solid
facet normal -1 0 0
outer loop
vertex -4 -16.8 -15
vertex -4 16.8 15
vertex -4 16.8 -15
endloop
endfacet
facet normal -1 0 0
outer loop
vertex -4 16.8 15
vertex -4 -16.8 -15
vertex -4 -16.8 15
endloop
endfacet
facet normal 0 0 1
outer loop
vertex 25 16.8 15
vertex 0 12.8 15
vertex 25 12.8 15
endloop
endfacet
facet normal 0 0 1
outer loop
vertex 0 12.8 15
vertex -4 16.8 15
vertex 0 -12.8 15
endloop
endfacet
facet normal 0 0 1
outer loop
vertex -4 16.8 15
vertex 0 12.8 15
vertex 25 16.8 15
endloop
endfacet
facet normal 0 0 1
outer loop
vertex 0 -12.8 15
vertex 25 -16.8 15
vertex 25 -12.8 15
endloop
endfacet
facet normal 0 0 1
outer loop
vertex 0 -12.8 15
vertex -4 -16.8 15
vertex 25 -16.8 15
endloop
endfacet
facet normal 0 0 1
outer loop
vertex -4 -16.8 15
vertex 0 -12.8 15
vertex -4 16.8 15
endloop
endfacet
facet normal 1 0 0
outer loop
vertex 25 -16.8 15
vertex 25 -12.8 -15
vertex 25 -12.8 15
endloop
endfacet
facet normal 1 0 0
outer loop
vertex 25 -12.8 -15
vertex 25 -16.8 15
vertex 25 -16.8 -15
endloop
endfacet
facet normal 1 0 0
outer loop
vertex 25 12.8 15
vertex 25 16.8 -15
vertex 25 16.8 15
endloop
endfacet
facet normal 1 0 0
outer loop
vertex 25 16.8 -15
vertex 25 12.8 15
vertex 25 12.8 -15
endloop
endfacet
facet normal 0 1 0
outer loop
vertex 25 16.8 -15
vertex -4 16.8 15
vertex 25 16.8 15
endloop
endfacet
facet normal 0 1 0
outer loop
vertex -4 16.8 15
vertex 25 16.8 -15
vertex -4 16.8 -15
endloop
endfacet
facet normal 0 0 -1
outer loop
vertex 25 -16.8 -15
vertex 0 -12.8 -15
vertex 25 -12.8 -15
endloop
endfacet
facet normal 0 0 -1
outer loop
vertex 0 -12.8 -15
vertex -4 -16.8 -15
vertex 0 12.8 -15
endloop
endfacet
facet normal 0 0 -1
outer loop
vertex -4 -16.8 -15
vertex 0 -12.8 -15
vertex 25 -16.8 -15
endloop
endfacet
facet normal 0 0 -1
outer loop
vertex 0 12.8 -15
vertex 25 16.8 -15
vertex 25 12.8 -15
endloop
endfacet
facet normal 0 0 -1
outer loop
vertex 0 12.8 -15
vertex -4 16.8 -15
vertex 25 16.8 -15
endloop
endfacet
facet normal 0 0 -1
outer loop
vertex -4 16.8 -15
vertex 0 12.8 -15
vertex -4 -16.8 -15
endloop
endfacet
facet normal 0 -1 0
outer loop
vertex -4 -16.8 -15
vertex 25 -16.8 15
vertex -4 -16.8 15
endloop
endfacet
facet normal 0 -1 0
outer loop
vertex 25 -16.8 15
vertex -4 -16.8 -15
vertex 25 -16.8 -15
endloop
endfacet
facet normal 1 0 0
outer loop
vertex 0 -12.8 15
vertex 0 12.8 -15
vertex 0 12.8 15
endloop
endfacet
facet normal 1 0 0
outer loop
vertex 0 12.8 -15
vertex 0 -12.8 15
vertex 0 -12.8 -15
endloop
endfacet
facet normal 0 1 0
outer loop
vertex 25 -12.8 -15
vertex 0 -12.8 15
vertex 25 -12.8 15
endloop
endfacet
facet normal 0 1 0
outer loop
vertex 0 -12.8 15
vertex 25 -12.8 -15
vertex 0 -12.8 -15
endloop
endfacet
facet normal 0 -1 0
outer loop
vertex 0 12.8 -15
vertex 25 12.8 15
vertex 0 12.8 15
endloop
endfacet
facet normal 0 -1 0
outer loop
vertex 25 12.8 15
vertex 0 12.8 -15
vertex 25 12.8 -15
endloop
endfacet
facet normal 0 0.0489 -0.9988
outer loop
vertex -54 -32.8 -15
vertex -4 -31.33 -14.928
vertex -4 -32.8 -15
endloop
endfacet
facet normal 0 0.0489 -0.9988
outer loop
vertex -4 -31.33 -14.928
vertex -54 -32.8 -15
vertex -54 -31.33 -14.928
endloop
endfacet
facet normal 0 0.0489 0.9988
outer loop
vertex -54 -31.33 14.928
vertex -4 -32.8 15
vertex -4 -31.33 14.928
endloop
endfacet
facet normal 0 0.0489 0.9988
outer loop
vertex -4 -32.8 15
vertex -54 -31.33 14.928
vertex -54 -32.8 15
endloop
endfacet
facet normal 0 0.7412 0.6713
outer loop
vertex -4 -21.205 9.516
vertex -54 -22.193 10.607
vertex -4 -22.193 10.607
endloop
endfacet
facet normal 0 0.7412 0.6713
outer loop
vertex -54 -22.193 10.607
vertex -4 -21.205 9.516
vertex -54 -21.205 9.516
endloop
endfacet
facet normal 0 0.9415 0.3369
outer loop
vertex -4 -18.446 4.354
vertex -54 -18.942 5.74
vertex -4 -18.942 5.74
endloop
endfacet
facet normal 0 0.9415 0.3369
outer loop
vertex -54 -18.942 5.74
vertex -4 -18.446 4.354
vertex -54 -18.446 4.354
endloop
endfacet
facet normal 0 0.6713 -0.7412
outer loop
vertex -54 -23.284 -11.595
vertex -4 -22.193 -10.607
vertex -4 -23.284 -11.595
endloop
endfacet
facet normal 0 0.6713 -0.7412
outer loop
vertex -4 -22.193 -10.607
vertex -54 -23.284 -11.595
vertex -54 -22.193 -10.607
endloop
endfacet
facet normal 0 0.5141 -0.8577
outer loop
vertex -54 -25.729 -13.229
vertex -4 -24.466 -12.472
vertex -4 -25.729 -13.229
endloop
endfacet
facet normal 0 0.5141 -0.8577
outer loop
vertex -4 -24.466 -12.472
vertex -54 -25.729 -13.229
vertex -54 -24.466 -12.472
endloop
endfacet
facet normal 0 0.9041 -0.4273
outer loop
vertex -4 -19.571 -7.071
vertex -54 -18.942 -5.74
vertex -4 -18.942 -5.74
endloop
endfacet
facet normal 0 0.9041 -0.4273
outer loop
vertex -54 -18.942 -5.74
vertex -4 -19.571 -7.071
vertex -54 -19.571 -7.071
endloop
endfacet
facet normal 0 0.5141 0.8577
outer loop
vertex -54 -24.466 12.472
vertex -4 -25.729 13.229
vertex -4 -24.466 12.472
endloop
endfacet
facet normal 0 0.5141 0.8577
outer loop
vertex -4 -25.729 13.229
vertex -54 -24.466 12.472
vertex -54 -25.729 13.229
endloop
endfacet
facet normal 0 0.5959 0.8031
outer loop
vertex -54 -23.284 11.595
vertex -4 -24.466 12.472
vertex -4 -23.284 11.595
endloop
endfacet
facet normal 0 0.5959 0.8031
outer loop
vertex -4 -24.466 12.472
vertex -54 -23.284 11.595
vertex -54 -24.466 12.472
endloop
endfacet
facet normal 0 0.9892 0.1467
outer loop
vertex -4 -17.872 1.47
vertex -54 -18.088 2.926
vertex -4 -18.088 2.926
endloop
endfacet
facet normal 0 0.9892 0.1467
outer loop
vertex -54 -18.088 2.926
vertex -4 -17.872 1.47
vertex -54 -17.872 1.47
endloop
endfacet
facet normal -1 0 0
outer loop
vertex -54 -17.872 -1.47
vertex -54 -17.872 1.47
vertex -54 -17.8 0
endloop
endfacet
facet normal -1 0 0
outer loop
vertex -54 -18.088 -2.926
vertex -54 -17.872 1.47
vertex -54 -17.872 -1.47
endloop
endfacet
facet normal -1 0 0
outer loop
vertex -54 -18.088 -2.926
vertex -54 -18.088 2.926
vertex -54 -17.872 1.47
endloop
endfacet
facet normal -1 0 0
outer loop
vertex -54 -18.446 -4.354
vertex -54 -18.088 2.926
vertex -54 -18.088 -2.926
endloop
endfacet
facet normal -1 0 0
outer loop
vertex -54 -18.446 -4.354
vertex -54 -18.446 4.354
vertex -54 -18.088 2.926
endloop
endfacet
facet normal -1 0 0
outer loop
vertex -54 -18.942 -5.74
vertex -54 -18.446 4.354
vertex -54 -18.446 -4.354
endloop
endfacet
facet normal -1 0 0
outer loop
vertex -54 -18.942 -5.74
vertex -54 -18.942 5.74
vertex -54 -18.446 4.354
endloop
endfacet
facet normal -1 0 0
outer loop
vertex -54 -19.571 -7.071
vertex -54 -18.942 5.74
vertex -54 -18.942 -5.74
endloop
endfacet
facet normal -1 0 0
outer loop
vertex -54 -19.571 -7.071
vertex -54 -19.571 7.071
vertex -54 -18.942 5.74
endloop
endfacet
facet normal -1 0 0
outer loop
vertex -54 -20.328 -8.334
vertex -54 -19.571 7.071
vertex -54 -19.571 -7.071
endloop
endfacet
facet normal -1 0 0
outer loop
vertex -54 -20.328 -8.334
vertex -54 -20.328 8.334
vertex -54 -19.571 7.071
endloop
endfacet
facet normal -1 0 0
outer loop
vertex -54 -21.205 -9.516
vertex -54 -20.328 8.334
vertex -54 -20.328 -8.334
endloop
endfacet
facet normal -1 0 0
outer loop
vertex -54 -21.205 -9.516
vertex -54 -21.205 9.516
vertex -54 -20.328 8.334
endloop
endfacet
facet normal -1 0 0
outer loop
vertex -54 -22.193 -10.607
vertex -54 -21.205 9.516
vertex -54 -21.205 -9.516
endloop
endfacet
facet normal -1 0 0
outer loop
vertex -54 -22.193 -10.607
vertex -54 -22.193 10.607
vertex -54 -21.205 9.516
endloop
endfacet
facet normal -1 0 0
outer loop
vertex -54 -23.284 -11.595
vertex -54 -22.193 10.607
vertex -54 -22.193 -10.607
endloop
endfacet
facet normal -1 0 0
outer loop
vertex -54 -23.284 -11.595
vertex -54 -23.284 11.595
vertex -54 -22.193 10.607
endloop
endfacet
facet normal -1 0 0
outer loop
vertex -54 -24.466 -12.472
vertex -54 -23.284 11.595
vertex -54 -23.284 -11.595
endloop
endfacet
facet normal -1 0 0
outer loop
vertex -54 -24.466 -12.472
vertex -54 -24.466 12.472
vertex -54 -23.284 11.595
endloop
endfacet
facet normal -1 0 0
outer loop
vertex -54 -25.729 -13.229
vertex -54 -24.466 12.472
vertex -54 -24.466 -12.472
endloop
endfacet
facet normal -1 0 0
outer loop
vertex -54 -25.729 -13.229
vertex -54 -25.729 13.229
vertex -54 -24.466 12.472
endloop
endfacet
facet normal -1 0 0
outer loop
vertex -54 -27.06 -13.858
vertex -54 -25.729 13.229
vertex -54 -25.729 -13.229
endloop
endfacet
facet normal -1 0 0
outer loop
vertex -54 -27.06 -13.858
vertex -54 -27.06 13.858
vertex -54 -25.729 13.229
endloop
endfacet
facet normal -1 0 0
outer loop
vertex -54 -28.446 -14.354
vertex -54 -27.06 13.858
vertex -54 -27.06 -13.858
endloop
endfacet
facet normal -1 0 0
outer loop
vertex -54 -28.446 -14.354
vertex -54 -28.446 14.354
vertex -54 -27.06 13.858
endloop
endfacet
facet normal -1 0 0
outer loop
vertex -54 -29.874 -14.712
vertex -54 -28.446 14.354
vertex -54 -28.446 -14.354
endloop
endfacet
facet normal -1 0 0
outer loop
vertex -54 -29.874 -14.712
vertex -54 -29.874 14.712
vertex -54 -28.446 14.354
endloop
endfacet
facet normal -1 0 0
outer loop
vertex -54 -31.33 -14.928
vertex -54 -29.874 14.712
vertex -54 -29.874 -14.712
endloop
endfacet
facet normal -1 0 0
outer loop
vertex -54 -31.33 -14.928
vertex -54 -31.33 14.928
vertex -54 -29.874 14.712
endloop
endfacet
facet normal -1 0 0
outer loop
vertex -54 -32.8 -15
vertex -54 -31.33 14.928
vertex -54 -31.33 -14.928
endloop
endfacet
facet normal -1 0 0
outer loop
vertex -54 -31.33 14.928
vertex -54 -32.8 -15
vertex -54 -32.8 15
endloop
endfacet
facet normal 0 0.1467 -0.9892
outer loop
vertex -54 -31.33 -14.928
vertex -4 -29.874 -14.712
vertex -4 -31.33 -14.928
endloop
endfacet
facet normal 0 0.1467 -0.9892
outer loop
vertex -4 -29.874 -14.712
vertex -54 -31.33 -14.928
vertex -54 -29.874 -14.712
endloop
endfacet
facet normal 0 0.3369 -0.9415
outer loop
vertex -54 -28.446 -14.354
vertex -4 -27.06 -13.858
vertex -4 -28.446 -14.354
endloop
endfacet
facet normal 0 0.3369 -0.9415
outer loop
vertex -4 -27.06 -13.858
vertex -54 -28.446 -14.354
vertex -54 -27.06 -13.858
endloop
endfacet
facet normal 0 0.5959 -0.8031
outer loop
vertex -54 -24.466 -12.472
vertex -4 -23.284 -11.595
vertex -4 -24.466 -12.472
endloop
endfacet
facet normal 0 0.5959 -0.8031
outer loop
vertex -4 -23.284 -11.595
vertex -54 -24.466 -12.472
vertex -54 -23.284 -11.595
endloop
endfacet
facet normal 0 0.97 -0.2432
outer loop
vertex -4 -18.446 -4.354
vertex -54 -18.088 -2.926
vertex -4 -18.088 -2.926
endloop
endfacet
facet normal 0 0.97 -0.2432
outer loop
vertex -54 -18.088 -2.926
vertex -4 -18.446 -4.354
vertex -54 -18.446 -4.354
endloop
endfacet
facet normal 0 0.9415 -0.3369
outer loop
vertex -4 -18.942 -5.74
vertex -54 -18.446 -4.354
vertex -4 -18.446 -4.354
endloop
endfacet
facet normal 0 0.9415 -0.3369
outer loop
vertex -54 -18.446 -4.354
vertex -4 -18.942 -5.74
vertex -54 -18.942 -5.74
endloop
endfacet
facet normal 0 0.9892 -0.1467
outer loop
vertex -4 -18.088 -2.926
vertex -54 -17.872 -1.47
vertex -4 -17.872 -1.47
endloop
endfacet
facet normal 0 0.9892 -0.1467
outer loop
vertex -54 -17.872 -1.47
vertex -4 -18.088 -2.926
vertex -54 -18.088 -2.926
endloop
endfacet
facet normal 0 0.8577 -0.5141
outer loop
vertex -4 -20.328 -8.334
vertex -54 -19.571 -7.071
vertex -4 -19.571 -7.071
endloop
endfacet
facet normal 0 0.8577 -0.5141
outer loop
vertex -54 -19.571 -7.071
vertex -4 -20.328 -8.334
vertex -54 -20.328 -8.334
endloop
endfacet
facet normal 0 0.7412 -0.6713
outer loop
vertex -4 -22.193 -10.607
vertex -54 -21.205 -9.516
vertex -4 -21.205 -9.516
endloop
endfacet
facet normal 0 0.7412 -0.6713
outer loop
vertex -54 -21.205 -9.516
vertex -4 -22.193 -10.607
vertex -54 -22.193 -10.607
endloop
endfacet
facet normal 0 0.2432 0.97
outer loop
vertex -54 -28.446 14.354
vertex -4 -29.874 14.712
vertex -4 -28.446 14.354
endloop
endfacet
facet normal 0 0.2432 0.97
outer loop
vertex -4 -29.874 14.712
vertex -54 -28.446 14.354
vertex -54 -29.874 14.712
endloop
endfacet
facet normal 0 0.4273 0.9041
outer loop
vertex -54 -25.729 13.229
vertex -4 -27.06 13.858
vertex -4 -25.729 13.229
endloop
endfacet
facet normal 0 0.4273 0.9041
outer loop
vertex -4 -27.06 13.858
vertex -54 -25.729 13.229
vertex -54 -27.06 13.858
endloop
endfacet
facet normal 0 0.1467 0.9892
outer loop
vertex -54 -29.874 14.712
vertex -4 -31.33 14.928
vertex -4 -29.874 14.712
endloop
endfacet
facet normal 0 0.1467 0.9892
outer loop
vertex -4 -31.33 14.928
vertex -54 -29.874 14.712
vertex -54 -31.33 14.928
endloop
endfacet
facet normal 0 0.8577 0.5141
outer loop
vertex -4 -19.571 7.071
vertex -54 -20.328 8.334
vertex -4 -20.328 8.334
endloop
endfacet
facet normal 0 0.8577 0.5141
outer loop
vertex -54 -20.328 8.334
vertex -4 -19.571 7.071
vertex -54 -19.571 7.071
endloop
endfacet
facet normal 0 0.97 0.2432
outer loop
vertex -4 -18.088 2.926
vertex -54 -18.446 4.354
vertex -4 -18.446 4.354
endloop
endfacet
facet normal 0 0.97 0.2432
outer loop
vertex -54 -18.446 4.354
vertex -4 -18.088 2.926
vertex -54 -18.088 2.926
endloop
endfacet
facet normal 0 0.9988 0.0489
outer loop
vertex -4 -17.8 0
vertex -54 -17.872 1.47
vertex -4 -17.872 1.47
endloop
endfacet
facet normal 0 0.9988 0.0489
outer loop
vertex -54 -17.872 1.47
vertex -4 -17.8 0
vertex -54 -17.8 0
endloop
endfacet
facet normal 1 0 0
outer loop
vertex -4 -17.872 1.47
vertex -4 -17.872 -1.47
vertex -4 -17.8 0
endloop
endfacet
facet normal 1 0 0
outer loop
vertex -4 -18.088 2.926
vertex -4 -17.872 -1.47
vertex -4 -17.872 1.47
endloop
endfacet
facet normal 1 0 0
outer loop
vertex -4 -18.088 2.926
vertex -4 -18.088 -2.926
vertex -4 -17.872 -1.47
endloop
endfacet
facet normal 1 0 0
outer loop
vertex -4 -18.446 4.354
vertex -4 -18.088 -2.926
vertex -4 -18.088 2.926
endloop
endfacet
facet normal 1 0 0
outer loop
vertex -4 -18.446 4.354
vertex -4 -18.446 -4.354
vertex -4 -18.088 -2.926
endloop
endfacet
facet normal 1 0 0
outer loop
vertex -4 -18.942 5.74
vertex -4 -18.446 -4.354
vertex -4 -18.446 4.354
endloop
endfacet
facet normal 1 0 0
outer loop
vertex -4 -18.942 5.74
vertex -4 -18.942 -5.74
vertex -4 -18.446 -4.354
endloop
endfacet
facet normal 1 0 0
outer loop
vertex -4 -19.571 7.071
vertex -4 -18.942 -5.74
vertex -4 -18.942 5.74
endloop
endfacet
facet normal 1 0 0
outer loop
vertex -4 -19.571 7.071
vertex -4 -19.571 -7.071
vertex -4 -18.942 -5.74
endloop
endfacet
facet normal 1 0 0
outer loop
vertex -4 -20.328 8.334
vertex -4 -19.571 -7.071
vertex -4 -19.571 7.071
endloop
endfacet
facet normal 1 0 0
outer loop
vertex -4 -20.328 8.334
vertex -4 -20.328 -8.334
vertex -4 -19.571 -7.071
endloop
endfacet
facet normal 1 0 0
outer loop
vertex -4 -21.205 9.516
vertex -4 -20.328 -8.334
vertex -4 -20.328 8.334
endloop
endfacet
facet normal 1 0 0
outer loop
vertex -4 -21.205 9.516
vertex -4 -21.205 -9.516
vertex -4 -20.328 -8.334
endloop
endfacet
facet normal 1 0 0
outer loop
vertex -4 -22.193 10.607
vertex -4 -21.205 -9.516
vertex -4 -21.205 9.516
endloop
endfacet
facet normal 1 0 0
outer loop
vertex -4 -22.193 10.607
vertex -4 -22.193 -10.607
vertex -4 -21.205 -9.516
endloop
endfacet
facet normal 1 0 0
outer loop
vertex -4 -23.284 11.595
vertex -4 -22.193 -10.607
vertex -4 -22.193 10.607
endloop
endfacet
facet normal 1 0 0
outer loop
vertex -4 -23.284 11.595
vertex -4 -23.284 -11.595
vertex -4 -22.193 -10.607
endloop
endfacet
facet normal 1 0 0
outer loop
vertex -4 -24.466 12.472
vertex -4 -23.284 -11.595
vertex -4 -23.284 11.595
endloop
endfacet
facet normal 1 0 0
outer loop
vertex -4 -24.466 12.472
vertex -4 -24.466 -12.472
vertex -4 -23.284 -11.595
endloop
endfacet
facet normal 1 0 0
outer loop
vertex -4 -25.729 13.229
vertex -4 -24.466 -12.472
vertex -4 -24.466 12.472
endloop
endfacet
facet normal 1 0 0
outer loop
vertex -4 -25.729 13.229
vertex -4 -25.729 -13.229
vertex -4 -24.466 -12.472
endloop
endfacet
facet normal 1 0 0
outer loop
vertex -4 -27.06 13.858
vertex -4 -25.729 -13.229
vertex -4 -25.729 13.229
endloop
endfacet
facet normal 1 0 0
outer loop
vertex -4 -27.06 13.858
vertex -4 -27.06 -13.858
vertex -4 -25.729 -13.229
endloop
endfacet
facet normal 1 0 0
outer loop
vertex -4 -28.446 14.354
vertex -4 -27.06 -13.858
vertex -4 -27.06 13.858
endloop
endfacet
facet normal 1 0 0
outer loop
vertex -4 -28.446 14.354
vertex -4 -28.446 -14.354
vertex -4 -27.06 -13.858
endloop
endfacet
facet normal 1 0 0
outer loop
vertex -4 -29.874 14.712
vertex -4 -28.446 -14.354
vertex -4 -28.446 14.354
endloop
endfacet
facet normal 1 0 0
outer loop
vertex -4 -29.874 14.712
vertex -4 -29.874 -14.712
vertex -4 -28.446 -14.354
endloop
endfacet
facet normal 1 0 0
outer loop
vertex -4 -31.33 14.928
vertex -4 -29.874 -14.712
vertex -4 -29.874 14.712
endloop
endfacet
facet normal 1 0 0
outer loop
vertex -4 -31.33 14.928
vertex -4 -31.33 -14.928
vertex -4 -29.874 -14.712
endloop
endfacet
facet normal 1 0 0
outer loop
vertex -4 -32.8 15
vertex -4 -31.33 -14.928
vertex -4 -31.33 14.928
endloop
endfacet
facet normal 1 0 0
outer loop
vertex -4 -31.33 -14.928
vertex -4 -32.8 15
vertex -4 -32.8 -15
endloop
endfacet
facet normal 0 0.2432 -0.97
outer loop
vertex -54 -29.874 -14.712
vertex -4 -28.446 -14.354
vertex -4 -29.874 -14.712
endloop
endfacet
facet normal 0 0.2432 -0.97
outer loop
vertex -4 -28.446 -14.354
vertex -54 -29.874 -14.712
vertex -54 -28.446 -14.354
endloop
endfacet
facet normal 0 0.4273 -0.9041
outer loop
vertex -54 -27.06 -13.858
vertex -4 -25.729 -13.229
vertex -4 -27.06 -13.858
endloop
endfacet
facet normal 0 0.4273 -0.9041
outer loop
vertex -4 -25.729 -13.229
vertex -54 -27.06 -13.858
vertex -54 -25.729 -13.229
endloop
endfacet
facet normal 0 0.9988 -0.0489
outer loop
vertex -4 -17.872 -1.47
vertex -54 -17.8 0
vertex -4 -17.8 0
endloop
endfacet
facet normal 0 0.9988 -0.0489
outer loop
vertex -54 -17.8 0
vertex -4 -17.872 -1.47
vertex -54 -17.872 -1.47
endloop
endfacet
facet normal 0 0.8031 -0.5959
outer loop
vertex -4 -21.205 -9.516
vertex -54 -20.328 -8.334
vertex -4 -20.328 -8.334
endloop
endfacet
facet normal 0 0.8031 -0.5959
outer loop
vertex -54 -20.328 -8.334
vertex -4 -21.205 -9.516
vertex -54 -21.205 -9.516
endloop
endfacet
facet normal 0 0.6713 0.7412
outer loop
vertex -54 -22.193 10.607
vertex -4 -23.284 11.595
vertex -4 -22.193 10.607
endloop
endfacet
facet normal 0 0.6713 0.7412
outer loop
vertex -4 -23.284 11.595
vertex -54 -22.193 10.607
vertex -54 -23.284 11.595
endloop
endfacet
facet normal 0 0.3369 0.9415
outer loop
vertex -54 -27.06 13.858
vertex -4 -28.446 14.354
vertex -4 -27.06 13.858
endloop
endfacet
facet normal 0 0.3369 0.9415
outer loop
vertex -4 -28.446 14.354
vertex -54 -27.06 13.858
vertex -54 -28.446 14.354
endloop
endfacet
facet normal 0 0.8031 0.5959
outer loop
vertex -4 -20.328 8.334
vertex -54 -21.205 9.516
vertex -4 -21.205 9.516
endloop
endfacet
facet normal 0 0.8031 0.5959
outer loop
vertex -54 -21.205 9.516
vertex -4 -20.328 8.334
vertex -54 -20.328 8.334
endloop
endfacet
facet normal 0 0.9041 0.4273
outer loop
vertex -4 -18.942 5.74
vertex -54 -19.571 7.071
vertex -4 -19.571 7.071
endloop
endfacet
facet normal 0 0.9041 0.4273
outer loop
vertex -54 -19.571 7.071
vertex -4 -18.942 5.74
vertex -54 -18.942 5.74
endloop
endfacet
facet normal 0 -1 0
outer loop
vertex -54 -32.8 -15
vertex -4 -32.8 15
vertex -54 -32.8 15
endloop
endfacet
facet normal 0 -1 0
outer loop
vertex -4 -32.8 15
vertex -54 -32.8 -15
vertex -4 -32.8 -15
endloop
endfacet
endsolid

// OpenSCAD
/*
Headphone Hook Clamp for 25mm Desk

- Desk thickness: param desk_thickness (default 25 mm)
- Friction-fit C-clamp, no screws
- Hanger extends ~50 mm from desk
- Curved cylindrical hanger to avoid headband creasing
- Minimum wall thickness 4 mm
*/

desk_thickness   = 25;   // actual desk thickness
clamp_clearance  = 0.6;  // extra space over desk_thickness; tweak for your printer
wall_thickness   = 4;    // minimum wall thickness
arm_depth        = 25;   // how far the clamp wraps over/under the desk edge
hanger_length    = 50;   // how far the headphone hanger sticks out from the desk
hanger_radius    = 15;   // curvature radius for hanger (~30mm wide contact area)

$fn = 64;

// Main C-shaped clamp body
module clamp_body() {
    width      = 2 * hanger_radius;  // width along the desk edge, matches hanger width
    gap_half   = (desk_thickness + clamp_clearance) / 2;
    outer_half = gap_half + wall_thickness;

    difference() {
        // Outer C-clamp shell.
        // Backplate is at x in [-wall_thickness, 0].
        // Desk outer face will sit at x = 0.
        translate([-wall_thickness, -outer_half, -width/2])
            cube([wall_thickness + arm_depth, 2 * outer_half, width]);

        // Inner void where the desk goes (open on the arm side).
        // This forms the "C" shape: top and bottom lips plus backplate.
        translate([0, -gap_half, -width/2 - 1])
            cube([arm_depth + 1, 2 * gap_half, width + 2]);
    }
}

// Curved headphone hanger
module hanger() {
    R       = hanger_radius;
    len     = hanger_length;
    width   = 2 * R;

    gap_half   = (desk_thickness + clamp_clearance) / 2;
    outer_half = gap_half + wall_thickness;

    // Place hanger just below the bottom of the clamp
    // Clamp bottom is at y = -outer_half
    top_y = -outer_half - 1; // 1 mm clearance below clamp
    dy    = top_y - R;       // segment we keep is y in [0, R], so shift so top (R) -> top_y

    // Attach to the outside of the backplate:
    // backplate outer face is at x = -wall_thickness
    translate([-wall_thickness - len, dy, 0])
    intersection() {
        // Full round bar, axis along X
        rotate([0, 90, 0])
            cylinder(h = len, r = R, center = false);

        // Keep only the top half (y â [0, R]) so the top is nicely curved
        // and the bottom is flattened for strength.
        translate([-1, 0, -R - 1])
            cube([len + 2, R + 1, 2 * R + 2]);
    }
}

// Assembly
module headphone_hook_clamp() {
    union() {
        clamp_body();
        hanger();
    }
}

// Render final part
headphone_hook_clamp();
